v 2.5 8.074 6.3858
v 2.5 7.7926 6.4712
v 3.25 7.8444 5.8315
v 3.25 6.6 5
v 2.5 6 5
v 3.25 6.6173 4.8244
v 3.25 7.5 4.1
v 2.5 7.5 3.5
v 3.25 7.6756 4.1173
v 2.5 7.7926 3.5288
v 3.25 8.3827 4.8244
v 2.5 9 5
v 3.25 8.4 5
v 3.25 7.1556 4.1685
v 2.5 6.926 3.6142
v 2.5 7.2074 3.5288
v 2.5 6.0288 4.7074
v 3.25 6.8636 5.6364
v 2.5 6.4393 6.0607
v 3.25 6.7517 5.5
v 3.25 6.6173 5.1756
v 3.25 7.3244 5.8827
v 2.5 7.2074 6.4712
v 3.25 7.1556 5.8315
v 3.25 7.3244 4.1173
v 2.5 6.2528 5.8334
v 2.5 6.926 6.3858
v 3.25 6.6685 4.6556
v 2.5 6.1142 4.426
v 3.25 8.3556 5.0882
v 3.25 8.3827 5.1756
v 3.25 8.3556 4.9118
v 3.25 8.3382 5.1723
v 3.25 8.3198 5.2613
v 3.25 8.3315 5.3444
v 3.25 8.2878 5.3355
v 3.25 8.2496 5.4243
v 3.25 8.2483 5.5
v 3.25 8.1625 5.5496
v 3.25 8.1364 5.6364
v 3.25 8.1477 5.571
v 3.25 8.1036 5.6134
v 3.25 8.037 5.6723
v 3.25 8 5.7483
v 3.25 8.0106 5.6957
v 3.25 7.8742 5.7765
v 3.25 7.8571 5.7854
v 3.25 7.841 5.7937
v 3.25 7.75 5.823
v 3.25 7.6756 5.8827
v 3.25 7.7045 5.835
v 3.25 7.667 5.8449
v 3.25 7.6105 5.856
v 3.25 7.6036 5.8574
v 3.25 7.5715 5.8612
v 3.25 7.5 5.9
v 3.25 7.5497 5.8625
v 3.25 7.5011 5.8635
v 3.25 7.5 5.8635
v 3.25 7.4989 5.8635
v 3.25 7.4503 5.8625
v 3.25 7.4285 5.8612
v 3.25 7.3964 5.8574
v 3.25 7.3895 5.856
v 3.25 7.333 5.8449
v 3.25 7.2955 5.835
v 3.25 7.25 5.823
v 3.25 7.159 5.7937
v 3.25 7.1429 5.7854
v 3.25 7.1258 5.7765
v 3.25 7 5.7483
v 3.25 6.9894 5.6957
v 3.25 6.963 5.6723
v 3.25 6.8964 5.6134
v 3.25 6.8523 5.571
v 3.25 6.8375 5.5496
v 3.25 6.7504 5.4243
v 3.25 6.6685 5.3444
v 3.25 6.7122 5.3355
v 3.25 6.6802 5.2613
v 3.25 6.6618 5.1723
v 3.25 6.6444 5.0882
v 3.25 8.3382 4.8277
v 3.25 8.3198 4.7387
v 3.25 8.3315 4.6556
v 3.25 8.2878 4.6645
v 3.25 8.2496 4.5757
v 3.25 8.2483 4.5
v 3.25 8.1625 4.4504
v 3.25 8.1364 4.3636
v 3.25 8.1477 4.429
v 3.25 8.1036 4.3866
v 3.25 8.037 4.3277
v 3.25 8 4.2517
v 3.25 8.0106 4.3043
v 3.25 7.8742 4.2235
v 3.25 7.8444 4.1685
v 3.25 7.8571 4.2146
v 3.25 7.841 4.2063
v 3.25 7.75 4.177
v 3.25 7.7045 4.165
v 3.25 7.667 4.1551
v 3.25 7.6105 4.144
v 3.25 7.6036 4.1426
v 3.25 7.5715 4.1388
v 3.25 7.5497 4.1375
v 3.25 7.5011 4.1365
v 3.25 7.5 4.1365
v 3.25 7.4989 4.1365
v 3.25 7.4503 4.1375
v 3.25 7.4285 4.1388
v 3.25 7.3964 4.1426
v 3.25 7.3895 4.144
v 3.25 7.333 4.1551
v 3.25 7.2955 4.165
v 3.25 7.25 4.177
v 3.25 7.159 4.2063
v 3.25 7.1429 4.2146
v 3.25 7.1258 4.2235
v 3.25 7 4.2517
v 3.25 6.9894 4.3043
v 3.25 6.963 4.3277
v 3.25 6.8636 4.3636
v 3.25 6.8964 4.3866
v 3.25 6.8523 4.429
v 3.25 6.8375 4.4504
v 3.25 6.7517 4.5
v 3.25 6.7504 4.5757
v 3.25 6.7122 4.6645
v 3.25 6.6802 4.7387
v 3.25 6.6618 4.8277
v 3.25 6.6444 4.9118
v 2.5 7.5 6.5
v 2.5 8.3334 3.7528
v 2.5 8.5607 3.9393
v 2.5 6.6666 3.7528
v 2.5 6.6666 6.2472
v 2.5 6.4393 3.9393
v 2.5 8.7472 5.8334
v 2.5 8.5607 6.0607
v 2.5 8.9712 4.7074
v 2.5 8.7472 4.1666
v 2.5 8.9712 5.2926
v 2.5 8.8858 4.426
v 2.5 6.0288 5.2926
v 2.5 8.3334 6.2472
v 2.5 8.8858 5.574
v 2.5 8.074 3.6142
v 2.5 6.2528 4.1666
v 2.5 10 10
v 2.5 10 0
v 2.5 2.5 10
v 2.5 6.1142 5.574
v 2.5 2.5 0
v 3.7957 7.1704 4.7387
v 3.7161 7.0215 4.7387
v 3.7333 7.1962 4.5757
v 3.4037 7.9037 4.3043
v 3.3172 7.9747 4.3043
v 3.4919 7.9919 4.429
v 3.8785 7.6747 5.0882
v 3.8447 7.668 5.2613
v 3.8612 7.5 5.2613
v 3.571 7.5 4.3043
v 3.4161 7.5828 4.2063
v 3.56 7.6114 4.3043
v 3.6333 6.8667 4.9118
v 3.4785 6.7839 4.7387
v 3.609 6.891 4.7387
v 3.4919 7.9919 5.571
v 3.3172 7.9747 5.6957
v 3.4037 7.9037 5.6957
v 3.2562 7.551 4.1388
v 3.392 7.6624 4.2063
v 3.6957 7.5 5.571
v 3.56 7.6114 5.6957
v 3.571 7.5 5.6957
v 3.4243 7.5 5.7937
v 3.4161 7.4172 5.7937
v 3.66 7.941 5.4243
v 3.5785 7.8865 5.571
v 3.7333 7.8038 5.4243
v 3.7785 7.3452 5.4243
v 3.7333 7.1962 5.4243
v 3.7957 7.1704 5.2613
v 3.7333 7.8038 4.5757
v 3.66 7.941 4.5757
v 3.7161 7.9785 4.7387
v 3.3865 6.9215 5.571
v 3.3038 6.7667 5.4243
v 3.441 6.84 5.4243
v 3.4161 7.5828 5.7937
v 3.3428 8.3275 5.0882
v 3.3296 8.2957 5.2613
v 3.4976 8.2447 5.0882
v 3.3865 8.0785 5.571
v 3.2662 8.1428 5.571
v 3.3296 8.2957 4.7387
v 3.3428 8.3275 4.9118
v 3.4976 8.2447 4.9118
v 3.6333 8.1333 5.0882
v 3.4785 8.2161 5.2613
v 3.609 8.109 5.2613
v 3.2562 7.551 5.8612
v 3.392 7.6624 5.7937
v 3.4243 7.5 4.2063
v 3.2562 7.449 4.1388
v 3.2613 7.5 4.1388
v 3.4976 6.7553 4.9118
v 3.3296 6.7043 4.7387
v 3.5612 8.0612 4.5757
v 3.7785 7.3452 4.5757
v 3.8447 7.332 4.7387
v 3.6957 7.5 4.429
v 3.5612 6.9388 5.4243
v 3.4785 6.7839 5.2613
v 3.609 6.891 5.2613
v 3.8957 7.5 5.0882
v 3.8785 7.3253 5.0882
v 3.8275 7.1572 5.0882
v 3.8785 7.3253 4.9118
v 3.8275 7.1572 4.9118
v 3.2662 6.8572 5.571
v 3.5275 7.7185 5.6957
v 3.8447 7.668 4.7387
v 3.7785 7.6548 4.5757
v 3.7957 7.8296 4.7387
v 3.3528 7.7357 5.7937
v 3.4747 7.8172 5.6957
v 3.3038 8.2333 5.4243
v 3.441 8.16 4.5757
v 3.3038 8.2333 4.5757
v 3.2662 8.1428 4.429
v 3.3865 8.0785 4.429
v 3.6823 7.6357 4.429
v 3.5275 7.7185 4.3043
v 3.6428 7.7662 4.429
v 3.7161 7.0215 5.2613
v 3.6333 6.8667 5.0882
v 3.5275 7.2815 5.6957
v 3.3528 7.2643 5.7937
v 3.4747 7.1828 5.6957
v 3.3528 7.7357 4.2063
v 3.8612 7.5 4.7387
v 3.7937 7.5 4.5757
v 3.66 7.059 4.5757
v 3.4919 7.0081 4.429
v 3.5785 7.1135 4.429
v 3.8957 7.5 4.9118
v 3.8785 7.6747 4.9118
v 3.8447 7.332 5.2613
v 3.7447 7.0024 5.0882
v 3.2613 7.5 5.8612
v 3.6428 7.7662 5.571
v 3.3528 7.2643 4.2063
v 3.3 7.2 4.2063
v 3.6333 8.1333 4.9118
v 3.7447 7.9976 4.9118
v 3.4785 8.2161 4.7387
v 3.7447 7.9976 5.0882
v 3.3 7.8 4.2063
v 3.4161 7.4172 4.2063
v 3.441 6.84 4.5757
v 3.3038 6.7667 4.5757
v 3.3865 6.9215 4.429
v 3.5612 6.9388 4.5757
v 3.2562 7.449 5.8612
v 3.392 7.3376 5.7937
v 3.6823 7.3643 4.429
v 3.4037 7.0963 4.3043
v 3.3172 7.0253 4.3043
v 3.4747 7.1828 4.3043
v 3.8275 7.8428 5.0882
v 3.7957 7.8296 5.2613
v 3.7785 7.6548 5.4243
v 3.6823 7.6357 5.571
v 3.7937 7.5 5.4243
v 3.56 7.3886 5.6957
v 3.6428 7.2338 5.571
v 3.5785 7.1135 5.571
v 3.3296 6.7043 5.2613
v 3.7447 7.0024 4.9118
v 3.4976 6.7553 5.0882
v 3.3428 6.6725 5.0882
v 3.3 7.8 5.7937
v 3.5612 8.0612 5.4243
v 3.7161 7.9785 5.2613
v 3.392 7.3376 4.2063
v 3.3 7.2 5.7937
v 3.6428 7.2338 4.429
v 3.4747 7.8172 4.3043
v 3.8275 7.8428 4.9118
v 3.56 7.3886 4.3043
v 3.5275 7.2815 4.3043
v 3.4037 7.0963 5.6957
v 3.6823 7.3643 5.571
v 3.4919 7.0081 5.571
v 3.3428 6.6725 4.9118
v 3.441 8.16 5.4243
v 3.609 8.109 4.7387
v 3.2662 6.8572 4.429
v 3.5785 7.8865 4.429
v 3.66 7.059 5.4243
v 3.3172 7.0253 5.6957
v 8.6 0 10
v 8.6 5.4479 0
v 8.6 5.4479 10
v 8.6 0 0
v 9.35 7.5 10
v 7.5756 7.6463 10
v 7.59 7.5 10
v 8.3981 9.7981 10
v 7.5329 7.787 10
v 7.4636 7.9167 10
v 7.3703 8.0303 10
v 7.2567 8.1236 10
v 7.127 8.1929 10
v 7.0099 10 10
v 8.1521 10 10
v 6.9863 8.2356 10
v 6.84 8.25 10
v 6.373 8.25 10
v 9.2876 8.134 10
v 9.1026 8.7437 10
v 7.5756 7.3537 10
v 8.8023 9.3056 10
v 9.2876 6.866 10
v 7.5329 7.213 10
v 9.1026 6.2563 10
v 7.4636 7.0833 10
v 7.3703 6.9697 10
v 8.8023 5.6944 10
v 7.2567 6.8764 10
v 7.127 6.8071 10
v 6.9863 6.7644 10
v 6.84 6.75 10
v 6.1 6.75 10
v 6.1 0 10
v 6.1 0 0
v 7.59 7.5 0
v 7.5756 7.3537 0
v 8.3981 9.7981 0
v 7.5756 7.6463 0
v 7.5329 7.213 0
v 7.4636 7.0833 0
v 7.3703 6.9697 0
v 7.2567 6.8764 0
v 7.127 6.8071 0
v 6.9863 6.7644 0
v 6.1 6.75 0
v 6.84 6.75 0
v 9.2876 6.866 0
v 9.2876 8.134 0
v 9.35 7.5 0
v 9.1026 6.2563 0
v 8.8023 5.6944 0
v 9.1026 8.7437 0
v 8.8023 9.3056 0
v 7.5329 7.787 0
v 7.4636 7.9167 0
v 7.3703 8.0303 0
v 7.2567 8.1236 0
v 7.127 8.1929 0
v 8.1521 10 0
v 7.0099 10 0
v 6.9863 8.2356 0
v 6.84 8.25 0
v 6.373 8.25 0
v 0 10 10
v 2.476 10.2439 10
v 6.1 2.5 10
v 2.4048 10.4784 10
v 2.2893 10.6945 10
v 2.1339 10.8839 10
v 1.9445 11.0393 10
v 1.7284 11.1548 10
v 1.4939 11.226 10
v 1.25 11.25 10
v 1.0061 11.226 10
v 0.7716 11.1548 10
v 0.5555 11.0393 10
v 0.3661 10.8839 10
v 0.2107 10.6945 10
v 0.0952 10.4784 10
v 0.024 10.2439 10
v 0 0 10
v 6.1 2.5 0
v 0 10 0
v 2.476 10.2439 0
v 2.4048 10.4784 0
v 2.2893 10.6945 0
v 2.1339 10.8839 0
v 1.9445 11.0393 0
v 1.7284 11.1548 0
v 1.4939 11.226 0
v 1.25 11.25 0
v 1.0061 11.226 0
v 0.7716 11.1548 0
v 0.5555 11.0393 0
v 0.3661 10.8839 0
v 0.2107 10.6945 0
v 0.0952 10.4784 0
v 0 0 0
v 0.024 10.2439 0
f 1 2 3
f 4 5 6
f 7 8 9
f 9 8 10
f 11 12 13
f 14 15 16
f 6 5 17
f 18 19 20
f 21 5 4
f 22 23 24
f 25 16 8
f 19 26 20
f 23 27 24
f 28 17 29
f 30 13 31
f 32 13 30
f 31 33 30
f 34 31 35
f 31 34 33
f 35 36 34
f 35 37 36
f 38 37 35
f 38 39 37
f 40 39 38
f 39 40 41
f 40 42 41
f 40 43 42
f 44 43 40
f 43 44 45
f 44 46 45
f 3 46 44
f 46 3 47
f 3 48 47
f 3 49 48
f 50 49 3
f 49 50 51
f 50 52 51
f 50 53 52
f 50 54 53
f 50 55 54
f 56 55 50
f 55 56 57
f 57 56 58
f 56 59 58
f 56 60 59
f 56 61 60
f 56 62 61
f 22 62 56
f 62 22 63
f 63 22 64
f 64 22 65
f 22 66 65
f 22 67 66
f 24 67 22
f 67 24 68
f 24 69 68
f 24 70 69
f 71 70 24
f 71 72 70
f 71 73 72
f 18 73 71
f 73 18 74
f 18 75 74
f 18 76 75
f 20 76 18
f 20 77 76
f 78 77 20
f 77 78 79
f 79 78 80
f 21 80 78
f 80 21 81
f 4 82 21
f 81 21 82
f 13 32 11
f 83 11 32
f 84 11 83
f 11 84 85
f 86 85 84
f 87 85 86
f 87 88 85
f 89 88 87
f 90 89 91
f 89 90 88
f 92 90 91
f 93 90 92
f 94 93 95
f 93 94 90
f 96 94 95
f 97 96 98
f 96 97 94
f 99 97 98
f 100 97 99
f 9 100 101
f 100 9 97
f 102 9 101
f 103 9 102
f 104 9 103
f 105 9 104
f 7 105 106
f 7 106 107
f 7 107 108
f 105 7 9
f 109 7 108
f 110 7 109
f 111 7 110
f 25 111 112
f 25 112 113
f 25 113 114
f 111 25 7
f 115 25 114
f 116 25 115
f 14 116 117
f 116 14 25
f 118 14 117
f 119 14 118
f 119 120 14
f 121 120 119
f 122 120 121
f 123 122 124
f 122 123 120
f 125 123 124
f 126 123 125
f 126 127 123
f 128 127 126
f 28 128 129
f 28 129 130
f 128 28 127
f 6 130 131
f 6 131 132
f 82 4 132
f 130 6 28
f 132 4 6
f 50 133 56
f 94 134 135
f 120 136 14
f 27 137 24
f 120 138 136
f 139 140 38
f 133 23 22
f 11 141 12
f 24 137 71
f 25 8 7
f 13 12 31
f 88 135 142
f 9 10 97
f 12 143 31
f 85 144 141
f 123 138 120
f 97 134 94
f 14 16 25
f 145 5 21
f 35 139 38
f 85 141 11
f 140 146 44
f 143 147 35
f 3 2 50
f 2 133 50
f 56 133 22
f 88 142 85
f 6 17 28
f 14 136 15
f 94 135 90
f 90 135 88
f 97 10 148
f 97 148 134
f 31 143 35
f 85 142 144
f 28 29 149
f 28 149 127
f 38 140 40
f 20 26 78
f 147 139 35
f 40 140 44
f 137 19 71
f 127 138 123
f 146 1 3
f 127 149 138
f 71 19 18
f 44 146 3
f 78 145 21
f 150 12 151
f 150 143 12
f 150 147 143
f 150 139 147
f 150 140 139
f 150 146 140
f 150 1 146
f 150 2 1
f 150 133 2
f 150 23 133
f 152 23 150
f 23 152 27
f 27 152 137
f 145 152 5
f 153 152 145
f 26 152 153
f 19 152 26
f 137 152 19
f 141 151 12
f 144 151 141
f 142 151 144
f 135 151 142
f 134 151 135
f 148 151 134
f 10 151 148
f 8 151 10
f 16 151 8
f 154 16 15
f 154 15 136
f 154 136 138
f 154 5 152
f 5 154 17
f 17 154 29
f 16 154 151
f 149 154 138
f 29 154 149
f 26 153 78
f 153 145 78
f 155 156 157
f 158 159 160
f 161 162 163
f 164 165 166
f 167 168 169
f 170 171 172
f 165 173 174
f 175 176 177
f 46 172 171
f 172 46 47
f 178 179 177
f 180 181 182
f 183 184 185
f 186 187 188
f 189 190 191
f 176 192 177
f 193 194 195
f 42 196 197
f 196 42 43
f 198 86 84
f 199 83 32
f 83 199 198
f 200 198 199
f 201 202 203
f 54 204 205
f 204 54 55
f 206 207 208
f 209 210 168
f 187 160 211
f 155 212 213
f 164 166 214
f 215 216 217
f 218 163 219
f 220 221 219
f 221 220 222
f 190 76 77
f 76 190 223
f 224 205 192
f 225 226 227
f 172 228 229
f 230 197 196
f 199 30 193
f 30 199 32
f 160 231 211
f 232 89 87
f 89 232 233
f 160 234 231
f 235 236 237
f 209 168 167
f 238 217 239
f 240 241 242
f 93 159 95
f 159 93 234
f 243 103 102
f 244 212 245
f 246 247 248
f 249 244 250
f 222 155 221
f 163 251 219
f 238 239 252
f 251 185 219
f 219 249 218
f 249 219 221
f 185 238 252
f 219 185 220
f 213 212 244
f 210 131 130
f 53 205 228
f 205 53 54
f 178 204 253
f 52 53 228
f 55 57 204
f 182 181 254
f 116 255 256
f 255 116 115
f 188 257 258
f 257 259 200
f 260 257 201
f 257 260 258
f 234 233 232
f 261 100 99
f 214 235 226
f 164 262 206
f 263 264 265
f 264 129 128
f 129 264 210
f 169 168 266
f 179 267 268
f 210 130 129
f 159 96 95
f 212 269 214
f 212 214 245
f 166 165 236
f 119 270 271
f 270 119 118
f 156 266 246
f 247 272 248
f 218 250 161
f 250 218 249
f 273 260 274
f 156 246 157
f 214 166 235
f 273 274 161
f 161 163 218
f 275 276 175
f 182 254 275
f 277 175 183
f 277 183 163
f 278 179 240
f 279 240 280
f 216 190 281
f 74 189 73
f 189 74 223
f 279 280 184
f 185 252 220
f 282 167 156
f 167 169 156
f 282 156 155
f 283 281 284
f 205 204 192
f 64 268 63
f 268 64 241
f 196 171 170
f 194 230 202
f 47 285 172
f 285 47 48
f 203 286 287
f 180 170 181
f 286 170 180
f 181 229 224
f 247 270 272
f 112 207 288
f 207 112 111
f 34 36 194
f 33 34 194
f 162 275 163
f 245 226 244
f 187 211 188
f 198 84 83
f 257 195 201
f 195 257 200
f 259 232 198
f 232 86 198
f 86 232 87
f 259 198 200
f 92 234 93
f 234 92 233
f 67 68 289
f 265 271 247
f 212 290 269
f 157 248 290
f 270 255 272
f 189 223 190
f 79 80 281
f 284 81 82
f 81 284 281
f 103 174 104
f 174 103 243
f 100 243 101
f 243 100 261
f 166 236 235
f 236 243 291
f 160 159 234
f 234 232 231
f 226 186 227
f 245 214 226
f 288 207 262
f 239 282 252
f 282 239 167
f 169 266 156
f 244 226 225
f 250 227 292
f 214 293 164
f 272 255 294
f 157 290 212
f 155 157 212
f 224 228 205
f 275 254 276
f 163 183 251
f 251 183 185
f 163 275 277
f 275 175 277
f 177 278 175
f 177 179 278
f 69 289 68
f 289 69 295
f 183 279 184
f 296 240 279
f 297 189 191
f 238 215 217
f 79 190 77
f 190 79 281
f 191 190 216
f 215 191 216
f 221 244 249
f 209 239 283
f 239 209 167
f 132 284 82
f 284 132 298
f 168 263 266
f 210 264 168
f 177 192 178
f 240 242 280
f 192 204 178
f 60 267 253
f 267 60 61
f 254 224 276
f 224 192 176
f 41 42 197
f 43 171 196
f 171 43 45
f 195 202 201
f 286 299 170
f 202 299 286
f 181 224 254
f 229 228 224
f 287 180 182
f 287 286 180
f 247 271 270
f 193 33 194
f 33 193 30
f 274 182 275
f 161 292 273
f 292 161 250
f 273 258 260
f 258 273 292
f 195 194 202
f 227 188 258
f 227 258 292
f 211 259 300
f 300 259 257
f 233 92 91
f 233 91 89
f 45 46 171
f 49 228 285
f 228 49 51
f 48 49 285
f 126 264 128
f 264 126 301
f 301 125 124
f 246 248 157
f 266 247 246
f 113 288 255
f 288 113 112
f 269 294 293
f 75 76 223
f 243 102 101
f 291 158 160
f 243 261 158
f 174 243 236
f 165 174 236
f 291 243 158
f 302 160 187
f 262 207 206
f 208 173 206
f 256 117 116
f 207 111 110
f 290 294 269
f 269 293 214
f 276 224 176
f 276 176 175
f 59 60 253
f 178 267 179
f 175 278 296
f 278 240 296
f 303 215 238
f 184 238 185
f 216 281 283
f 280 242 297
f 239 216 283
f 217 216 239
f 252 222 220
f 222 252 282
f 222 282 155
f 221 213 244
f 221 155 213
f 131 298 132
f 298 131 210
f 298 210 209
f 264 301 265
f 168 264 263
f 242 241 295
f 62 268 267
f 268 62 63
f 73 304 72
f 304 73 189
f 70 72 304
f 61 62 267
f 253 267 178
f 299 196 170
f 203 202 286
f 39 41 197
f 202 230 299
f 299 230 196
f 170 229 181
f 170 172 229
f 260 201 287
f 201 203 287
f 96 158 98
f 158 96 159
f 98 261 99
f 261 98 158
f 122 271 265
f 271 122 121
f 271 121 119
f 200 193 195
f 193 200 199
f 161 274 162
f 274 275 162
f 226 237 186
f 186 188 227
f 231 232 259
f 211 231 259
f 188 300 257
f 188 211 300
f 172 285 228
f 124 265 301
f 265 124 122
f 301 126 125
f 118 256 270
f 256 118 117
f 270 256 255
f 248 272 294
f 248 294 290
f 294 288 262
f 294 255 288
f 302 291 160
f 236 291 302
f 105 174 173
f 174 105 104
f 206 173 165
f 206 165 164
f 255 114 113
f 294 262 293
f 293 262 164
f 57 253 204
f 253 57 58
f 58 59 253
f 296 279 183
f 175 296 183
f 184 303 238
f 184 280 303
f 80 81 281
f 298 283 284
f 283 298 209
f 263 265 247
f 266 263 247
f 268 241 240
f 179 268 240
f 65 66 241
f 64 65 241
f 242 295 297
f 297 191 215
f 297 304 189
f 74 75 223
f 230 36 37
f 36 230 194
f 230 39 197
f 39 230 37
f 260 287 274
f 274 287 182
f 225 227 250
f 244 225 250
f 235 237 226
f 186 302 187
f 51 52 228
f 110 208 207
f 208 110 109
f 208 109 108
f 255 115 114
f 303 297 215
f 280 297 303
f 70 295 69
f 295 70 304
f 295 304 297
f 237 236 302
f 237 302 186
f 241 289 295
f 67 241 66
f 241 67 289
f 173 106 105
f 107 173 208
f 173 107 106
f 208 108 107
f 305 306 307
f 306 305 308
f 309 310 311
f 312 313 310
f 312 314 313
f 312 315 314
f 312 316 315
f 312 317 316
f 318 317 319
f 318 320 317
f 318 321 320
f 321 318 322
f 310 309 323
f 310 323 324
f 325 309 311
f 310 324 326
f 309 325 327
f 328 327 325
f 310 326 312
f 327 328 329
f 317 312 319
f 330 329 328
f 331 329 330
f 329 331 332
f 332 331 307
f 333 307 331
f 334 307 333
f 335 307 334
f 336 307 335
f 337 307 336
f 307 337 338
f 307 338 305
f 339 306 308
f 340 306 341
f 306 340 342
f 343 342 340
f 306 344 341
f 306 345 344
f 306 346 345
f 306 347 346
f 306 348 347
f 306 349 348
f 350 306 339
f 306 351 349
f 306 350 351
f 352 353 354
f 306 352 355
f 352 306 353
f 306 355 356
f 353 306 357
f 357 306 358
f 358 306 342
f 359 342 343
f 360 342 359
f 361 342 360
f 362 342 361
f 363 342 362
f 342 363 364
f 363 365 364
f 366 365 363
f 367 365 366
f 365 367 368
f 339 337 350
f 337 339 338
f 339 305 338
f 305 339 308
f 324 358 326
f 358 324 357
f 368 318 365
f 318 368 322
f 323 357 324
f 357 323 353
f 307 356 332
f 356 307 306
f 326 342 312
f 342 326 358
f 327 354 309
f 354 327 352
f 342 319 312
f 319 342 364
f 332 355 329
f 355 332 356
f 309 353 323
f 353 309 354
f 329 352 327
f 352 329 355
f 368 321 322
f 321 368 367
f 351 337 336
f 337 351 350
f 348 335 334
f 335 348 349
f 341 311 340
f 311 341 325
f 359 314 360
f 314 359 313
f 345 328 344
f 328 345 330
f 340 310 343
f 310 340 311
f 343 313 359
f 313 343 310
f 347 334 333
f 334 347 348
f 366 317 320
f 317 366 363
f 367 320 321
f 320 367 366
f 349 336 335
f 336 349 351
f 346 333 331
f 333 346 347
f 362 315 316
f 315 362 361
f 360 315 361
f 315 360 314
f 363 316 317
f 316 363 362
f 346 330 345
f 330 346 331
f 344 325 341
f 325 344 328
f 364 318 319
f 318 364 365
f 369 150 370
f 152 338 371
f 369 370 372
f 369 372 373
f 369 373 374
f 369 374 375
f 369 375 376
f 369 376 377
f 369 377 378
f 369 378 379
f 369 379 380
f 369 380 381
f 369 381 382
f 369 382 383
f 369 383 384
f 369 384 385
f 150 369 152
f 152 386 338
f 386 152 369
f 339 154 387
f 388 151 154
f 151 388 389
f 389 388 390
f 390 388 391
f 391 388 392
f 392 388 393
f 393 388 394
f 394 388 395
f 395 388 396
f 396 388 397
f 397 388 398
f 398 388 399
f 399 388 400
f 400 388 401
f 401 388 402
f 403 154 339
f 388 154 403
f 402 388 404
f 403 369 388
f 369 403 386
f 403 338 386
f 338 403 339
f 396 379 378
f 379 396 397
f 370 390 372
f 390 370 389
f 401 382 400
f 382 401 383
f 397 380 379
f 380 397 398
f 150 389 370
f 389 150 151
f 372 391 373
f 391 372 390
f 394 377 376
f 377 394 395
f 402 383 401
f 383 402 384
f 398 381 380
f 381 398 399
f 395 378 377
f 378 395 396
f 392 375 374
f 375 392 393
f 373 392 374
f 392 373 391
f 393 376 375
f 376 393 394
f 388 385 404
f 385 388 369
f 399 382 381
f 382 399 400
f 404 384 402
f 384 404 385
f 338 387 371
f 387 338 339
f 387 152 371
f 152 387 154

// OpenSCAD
include <MCAD/2Dshapes.scad>

$fn=32;
t = 2.5;
h = 10;
cube([t,10,h]);
translate([t/2,10,0]) cylinder(r=t/2,h=h);
translate([t,t+5,h/2]) {
    rotate([0,90,0]) cylinder(r1=1.5,r2=0.9,h=0.75);
    translate([0.5,0,0]) sphere(r=0.9);
}
translate([t,0,0]) cube([3.6,t,h]);
translate([t+3.6,0,0]) {
    difference() {
        union() {
            cube([t,t+5,h]);
            translate([0,t+5,0])
                linear_extrude(h) donutSlice(0,t+0.75, 270,430);
        }
        translate([-0.01,t+5,-0.01]) {
            translate([0,-0.75,0]) cube([0.75,1.5,h+1]);
            translate([0.75,0,0]) cylinder(r=0.75,h=h+1);
        }
        translate([0,5+t*2,-0.01]) cube([20,2,h+1]);
    }
}
